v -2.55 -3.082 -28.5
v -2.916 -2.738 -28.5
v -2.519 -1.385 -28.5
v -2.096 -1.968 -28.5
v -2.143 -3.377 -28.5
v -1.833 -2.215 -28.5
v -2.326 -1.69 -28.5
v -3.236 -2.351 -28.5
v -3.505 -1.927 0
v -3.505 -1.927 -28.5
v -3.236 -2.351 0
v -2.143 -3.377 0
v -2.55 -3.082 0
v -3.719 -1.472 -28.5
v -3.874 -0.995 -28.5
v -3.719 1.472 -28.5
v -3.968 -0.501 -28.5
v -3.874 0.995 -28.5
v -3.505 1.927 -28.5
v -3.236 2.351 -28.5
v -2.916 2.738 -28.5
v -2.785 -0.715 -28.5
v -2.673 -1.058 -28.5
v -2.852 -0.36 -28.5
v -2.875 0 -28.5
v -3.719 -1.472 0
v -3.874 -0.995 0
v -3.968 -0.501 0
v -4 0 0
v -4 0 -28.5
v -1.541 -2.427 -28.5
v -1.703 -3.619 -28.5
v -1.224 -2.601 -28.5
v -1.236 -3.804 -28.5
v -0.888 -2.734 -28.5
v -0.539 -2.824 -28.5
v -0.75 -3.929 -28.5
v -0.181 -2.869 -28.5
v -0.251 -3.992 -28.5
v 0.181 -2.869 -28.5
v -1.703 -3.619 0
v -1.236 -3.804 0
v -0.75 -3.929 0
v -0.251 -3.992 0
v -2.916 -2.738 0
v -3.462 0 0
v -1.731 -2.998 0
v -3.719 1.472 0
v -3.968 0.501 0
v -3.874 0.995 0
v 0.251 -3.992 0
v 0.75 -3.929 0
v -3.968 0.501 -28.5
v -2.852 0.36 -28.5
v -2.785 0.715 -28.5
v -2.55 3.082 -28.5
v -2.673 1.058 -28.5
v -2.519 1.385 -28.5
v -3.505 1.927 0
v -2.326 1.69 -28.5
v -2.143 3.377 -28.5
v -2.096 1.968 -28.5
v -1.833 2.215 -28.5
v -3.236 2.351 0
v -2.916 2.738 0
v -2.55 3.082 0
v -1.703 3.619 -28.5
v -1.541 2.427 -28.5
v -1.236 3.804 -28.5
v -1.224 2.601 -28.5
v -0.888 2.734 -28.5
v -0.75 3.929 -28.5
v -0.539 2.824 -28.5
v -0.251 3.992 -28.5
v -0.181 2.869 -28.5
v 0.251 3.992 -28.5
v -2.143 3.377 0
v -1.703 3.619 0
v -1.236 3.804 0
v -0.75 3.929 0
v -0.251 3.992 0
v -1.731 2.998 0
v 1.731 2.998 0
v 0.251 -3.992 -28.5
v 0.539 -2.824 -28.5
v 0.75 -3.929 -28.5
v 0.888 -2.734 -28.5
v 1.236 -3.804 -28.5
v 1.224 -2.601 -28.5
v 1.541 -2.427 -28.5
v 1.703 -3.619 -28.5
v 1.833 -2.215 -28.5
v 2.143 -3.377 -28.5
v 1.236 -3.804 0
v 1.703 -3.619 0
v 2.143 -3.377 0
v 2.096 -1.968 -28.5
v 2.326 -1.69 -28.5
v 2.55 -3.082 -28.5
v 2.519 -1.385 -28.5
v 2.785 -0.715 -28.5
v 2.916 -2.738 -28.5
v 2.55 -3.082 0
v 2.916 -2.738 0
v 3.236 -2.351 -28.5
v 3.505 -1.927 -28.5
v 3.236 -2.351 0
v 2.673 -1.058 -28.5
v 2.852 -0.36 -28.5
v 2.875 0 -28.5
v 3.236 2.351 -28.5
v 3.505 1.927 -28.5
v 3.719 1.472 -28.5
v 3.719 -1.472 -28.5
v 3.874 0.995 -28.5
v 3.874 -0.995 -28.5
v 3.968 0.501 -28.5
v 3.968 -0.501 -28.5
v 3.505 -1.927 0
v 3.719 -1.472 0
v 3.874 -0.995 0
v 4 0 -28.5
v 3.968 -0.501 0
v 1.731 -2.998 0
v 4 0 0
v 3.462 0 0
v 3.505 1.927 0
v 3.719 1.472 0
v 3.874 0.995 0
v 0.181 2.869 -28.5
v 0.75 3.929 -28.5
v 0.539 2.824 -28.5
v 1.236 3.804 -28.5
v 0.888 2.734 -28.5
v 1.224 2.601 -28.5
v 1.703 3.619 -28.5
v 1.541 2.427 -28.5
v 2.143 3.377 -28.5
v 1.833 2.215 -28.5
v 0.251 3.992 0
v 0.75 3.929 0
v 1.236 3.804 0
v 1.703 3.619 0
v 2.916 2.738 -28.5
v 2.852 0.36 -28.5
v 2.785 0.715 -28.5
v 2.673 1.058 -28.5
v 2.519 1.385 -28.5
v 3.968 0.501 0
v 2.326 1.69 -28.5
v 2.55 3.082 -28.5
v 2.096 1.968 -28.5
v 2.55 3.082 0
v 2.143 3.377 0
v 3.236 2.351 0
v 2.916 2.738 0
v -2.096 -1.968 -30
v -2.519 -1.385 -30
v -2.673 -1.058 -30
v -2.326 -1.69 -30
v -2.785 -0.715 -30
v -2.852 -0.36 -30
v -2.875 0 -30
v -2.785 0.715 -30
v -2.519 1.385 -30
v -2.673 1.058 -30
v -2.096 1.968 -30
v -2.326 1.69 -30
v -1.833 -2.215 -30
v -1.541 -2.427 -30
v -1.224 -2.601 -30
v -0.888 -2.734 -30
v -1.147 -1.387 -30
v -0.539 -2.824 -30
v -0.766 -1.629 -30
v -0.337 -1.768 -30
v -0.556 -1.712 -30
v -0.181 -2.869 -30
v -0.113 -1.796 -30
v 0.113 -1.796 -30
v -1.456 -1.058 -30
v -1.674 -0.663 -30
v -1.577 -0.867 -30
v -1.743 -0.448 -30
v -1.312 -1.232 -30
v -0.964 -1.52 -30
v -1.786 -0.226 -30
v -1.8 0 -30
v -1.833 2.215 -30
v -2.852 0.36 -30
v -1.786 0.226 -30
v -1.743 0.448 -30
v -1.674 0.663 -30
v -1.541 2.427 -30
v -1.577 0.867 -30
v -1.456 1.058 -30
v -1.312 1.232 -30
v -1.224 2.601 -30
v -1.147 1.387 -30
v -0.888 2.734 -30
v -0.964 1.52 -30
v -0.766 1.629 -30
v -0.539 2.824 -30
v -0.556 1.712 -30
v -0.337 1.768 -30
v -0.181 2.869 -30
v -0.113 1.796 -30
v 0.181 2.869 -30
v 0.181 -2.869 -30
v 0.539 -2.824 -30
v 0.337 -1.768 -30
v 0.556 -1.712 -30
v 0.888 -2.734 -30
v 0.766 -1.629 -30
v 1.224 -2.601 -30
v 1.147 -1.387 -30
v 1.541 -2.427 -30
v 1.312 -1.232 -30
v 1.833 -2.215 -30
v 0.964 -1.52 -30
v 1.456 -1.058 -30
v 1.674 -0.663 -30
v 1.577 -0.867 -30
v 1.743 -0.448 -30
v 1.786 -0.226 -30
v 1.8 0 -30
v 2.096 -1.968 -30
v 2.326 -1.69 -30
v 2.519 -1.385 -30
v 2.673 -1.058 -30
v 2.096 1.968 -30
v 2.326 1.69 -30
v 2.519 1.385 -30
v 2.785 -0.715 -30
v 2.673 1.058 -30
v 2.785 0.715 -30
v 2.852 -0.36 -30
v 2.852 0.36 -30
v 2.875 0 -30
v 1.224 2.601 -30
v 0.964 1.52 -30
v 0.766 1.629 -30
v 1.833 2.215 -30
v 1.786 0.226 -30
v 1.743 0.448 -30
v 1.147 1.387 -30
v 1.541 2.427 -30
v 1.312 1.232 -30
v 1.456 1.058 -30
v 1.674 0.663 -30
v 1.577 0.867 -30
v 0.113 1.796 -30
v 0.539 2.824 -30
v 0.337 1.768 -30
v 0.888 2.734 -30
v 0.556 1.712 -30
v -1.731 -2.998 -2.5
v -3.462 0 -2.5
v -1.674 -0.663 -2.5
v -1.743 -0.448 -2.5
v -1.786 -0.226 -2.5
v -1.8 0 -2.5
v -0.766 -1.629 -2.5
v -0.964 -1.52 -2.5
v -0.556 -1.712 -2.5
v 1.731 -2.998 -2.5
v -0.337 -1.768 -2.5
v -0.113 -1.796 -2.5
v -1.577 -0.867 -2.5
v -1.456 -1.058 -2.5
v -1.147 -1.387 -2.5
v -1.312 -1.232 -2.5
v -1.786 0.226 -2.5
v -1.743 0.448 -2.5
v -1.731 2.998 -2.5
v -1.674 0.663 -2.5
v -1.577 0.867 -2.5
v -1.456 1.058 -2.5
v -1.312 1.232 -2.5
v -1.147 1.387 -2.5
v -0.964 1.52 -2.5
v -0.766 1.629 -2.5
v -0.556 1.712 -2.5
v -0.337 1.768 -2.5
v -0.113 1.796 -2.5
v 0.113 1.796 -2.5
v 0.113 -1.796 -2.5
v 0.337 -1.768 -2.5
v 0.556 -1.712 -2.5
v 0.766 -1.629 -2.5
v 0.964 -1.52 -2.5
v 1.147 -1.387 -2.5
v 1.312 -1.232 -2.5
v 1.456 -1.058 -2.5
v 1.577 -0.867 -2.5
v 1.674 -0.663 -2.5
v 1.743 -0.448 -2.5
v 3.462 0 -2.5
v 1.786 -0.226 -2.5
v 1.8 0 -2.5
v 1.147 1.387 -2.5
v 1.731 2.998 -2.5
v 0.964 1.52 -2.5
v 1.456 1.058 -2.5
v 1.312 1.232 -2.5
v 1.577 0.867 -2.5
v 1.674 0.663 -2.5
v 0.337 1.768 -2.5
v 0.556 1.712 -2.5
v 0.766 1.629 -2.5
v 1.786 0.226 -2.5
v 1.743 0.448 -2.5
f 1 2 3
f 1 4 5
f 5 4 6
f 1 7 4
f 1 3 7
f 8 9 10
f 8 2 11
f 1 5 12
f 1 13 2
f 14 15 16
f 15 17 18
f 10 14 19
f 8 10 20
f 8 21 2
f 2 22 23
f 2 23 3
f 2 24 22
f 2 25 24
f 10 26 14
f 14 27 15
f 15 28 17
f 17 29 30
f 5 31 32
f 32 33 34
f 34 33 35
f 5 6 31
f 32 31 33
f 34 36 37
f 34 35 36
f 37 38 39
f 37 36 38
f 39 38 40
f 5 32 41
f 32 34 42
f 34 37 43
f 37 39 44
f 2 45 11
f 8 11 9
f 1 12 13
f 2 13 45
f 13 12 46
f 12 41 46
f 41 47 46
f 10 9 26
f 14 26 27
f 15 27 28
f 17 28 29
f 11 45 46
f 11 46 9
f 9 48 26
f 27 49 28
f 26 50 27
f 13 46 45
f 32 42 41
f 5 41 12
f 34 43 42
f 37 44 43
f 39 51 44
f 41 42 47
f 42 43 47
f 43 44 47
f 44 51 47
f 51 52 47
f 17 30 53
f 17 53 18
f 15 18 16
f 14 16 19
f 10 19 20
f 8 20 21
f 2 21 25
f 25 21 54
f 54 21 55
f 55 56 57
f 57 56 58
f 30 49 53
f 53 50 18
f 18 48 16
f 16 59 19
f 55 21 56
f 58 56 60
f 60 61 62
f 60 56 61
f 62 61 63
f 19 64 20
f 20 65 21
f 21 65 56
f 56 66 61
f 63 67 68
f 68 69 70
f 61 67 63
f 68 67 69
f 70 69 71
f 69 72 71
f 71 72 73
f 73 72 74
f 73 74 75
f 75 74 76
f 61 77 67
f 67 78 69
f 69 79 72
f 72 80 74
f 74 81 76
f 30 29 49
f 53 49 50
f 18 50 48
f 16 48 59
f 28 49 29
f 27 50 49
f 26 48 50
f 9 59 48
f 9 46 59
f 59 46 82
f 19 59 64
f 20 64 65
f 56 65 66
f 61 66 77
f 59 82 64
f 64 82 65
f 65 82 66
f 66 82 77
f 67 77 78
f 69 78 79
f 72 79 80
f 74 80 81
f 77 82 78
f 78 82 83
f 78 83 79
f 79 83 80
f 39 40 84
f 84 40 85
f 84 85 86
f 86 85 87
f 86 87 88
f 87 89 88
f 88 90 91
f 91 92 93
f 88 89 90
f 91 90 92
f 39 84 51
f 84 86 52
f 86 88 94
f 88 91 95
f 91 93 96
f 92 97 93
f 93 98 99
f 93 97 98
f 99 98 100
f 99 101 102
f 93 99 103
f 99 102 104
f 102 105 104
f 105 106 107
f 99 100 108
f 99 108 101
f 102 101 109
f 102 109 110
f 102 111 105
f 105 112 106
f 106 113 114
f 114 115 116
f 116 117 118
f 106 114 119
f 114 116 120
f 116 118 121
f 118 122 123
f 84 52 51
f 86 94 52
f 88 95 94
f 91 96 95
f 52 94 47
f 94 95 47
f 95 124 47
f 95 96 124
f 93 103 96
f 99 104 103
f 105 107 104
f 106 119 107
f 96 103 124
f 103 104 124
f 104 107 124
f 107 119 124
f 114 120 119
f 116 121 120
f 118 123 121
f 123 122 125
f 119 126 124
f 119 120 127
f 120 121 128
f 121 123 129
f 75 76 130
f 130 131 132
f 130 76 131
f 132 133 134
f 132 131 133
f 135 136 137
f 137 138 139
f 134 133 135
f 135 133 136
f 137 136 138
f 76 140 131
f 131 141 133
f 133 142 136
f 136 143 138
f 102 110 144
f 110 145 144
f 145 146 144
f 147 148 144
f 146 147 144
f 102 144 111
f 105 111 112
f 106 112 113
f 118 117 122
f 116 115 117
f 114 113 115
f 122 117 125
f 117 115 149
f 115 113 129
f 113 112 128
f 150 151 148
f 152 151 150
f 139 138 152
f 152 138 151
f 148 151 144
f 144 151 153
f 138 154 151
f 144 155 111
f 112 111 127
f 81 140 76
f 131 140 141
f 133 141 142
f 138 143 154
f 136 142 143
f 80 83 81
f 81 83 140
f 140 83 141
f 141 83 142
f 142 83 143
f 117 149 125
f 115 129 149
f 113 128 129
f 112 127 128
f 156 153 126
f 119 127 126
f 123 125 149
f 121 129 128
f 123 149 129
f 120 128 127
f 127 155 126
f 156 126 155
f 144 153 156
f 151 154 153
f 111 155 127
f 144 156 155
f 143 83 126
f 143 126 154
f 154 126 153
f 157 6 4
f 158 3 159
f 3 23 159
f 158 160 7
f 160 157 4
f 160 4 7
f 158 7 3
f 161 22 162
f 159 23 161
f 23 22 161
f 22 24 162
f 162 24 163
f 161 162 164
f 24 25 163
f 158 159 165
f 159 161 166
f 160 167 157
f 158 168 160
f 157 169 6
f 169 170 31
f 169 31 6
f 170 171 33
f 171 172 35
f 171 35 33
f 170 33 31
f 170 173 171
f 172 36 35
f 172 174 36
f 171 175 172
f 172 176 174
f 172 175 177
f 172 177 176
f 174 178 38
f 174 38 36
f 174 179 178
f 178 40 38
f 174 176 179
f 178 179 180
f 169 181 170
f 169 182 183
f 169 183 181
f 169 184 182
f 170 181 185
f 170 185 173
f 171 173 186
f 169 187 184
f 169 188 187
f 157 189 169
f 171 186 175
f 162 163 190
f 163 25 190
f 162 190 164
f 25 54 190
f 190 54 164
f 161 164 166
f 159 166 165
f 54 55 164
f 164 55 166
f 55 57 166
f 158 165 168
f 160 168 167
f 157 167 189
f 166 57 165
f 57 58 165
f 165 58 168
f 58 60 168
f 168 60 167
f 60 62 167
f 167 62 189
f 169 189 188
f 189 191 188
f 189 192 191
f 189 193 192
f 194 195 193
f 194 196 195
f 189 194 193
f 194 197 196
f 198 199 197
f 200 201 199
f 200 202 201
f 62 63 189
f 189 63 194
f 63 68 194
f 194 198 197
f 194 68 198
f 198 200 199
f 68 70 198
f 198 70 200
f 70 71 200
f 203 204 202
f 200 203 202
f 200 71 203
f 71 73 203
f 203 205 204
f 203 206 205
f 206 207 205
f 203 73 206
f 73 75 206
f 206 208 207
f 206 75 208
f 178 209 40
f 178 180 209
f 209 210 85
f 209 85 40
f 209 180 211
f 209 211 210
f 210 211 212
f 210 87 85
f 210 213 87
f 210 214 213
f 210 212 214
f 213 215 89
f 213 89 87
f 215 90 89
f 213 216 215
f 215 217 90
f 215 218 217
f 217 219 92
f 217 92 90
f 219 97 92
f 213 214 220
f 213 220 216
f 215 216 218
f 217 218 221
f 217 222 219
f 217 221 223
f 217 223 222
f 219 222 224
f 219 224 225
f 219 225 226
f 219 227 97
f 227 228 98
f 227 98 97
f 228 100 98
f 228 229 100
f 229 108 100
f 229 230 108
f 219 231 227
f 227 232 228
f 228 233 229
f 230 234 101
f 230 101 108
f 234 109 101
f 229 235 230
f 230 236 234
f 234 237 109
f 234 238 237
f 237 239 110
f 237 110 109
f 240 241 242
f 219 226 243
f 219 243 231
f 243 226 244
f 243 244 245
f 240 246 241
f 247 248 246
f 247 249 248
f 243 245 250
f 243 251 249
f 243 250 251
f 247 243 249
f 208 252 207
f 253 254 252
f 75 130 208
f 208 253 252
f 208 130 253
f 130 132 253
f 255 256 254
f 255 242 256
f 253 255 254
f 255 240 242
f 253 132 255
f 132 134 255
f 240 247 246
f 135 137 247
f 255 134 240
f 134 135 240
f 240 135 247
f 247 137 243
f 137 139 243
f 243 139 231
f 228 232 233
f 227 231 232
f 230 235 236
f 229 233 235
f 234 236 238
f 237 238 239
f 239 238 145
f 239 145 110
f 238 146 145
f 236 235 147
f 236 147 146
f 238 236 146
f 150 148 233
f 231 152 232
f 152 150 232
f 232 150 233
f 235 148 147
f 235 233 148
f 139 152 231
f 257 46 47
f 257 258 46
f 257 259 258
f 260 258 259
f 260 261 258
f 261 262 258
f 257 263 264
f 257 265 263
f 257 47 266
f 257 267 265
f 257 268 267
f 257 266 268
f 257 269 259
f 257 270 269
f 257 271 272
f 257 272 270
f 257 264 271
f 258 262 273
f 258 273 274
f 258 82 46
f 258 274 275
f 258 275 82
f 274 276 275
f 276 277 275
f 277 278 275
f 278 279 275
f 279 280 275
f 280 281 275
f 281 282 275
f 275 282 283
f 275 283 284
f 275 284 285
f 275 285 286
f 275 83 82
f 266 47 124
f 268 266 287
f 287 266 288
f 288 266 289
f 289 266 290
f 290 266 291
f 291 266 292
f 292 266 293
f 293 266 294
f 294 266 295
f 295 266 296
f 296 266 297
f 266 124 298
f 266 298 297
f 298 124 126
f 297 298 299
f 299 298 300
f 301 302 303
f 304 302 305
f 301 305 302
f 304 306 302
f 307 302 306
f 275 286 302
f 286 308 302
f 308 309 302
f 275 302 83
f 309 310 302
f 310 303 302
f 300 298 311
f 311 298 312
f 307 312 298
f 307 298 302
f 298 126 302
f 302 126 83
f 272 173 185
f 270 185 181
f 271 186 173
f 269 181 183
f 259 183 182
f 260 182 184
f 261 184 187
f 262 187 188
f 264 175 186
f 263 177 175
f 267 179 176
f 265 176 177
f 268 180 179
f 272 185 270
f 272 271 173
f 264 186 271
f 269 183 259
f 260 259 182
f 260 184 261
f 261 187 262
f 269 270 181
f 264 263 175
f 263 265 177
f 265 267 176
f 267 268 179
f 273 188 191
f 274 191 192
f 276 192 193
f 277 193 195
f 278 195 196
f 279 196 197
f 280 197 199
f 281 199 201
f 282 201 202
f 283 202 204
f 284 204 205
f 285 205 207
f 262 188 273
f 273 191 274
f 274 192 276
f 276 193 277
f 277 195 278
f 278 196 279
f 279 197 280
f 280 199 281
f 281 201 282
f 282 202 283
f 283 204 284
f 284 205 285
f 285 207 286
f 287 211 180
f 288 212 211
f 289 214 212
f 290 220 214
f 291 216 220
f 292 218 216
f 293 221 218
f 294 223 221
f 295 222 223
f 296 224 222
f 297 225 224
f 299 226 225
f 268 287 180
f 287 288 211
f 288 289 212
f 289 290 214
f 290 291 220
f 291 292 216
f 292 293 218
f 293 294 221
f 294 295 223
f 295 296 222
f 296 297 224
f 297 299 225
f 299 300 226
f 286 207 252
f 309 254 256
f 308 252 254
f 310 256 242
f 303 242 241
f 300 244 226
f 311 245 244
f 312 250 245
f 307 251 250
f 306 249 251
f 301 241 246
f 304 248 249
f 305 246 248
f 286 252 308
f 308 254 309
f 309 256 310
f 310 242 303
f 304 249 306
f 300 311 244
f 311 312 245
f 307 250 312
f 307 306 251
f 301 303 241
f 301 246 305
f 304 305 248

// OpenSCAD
$fn = 50;

difference() {
	union() {
		translate(v = [0, 0, -28.5]) {
			cylinder(h = 28.5, r = 4.0);
		}
		#translate(v = [0, 0, -30.0]) {
			cylinder(h = 30, r = 2.875);
		}
	}
	union() {
		translate(v = [0, 0, 0]) {
			rotate(a = [0, 0, 0]) {
				difference() {
					union() {
						translate(v = [0, 0, -2.5]) {
							linear_extrude(height = 2.5) {
								polygon(points = [[3.4619999999999997, 0.0], [1.7310000000000003, 2.9981799479017264], [-1.7309999999999992, 2.9981799479017264], [-3.4619999999999997, 4.2397272186481365e-16], [-1.7310000000000014, -2.998179947901726], [1.7309999999999977, -2.9981799479017277]]);
							}
						}
					}
					union();
				}
			}
		}
		#translate(v = [0, 0, -100.0]) {
			cylinder(h = 200, r = 1.8);
		}
	}
}
